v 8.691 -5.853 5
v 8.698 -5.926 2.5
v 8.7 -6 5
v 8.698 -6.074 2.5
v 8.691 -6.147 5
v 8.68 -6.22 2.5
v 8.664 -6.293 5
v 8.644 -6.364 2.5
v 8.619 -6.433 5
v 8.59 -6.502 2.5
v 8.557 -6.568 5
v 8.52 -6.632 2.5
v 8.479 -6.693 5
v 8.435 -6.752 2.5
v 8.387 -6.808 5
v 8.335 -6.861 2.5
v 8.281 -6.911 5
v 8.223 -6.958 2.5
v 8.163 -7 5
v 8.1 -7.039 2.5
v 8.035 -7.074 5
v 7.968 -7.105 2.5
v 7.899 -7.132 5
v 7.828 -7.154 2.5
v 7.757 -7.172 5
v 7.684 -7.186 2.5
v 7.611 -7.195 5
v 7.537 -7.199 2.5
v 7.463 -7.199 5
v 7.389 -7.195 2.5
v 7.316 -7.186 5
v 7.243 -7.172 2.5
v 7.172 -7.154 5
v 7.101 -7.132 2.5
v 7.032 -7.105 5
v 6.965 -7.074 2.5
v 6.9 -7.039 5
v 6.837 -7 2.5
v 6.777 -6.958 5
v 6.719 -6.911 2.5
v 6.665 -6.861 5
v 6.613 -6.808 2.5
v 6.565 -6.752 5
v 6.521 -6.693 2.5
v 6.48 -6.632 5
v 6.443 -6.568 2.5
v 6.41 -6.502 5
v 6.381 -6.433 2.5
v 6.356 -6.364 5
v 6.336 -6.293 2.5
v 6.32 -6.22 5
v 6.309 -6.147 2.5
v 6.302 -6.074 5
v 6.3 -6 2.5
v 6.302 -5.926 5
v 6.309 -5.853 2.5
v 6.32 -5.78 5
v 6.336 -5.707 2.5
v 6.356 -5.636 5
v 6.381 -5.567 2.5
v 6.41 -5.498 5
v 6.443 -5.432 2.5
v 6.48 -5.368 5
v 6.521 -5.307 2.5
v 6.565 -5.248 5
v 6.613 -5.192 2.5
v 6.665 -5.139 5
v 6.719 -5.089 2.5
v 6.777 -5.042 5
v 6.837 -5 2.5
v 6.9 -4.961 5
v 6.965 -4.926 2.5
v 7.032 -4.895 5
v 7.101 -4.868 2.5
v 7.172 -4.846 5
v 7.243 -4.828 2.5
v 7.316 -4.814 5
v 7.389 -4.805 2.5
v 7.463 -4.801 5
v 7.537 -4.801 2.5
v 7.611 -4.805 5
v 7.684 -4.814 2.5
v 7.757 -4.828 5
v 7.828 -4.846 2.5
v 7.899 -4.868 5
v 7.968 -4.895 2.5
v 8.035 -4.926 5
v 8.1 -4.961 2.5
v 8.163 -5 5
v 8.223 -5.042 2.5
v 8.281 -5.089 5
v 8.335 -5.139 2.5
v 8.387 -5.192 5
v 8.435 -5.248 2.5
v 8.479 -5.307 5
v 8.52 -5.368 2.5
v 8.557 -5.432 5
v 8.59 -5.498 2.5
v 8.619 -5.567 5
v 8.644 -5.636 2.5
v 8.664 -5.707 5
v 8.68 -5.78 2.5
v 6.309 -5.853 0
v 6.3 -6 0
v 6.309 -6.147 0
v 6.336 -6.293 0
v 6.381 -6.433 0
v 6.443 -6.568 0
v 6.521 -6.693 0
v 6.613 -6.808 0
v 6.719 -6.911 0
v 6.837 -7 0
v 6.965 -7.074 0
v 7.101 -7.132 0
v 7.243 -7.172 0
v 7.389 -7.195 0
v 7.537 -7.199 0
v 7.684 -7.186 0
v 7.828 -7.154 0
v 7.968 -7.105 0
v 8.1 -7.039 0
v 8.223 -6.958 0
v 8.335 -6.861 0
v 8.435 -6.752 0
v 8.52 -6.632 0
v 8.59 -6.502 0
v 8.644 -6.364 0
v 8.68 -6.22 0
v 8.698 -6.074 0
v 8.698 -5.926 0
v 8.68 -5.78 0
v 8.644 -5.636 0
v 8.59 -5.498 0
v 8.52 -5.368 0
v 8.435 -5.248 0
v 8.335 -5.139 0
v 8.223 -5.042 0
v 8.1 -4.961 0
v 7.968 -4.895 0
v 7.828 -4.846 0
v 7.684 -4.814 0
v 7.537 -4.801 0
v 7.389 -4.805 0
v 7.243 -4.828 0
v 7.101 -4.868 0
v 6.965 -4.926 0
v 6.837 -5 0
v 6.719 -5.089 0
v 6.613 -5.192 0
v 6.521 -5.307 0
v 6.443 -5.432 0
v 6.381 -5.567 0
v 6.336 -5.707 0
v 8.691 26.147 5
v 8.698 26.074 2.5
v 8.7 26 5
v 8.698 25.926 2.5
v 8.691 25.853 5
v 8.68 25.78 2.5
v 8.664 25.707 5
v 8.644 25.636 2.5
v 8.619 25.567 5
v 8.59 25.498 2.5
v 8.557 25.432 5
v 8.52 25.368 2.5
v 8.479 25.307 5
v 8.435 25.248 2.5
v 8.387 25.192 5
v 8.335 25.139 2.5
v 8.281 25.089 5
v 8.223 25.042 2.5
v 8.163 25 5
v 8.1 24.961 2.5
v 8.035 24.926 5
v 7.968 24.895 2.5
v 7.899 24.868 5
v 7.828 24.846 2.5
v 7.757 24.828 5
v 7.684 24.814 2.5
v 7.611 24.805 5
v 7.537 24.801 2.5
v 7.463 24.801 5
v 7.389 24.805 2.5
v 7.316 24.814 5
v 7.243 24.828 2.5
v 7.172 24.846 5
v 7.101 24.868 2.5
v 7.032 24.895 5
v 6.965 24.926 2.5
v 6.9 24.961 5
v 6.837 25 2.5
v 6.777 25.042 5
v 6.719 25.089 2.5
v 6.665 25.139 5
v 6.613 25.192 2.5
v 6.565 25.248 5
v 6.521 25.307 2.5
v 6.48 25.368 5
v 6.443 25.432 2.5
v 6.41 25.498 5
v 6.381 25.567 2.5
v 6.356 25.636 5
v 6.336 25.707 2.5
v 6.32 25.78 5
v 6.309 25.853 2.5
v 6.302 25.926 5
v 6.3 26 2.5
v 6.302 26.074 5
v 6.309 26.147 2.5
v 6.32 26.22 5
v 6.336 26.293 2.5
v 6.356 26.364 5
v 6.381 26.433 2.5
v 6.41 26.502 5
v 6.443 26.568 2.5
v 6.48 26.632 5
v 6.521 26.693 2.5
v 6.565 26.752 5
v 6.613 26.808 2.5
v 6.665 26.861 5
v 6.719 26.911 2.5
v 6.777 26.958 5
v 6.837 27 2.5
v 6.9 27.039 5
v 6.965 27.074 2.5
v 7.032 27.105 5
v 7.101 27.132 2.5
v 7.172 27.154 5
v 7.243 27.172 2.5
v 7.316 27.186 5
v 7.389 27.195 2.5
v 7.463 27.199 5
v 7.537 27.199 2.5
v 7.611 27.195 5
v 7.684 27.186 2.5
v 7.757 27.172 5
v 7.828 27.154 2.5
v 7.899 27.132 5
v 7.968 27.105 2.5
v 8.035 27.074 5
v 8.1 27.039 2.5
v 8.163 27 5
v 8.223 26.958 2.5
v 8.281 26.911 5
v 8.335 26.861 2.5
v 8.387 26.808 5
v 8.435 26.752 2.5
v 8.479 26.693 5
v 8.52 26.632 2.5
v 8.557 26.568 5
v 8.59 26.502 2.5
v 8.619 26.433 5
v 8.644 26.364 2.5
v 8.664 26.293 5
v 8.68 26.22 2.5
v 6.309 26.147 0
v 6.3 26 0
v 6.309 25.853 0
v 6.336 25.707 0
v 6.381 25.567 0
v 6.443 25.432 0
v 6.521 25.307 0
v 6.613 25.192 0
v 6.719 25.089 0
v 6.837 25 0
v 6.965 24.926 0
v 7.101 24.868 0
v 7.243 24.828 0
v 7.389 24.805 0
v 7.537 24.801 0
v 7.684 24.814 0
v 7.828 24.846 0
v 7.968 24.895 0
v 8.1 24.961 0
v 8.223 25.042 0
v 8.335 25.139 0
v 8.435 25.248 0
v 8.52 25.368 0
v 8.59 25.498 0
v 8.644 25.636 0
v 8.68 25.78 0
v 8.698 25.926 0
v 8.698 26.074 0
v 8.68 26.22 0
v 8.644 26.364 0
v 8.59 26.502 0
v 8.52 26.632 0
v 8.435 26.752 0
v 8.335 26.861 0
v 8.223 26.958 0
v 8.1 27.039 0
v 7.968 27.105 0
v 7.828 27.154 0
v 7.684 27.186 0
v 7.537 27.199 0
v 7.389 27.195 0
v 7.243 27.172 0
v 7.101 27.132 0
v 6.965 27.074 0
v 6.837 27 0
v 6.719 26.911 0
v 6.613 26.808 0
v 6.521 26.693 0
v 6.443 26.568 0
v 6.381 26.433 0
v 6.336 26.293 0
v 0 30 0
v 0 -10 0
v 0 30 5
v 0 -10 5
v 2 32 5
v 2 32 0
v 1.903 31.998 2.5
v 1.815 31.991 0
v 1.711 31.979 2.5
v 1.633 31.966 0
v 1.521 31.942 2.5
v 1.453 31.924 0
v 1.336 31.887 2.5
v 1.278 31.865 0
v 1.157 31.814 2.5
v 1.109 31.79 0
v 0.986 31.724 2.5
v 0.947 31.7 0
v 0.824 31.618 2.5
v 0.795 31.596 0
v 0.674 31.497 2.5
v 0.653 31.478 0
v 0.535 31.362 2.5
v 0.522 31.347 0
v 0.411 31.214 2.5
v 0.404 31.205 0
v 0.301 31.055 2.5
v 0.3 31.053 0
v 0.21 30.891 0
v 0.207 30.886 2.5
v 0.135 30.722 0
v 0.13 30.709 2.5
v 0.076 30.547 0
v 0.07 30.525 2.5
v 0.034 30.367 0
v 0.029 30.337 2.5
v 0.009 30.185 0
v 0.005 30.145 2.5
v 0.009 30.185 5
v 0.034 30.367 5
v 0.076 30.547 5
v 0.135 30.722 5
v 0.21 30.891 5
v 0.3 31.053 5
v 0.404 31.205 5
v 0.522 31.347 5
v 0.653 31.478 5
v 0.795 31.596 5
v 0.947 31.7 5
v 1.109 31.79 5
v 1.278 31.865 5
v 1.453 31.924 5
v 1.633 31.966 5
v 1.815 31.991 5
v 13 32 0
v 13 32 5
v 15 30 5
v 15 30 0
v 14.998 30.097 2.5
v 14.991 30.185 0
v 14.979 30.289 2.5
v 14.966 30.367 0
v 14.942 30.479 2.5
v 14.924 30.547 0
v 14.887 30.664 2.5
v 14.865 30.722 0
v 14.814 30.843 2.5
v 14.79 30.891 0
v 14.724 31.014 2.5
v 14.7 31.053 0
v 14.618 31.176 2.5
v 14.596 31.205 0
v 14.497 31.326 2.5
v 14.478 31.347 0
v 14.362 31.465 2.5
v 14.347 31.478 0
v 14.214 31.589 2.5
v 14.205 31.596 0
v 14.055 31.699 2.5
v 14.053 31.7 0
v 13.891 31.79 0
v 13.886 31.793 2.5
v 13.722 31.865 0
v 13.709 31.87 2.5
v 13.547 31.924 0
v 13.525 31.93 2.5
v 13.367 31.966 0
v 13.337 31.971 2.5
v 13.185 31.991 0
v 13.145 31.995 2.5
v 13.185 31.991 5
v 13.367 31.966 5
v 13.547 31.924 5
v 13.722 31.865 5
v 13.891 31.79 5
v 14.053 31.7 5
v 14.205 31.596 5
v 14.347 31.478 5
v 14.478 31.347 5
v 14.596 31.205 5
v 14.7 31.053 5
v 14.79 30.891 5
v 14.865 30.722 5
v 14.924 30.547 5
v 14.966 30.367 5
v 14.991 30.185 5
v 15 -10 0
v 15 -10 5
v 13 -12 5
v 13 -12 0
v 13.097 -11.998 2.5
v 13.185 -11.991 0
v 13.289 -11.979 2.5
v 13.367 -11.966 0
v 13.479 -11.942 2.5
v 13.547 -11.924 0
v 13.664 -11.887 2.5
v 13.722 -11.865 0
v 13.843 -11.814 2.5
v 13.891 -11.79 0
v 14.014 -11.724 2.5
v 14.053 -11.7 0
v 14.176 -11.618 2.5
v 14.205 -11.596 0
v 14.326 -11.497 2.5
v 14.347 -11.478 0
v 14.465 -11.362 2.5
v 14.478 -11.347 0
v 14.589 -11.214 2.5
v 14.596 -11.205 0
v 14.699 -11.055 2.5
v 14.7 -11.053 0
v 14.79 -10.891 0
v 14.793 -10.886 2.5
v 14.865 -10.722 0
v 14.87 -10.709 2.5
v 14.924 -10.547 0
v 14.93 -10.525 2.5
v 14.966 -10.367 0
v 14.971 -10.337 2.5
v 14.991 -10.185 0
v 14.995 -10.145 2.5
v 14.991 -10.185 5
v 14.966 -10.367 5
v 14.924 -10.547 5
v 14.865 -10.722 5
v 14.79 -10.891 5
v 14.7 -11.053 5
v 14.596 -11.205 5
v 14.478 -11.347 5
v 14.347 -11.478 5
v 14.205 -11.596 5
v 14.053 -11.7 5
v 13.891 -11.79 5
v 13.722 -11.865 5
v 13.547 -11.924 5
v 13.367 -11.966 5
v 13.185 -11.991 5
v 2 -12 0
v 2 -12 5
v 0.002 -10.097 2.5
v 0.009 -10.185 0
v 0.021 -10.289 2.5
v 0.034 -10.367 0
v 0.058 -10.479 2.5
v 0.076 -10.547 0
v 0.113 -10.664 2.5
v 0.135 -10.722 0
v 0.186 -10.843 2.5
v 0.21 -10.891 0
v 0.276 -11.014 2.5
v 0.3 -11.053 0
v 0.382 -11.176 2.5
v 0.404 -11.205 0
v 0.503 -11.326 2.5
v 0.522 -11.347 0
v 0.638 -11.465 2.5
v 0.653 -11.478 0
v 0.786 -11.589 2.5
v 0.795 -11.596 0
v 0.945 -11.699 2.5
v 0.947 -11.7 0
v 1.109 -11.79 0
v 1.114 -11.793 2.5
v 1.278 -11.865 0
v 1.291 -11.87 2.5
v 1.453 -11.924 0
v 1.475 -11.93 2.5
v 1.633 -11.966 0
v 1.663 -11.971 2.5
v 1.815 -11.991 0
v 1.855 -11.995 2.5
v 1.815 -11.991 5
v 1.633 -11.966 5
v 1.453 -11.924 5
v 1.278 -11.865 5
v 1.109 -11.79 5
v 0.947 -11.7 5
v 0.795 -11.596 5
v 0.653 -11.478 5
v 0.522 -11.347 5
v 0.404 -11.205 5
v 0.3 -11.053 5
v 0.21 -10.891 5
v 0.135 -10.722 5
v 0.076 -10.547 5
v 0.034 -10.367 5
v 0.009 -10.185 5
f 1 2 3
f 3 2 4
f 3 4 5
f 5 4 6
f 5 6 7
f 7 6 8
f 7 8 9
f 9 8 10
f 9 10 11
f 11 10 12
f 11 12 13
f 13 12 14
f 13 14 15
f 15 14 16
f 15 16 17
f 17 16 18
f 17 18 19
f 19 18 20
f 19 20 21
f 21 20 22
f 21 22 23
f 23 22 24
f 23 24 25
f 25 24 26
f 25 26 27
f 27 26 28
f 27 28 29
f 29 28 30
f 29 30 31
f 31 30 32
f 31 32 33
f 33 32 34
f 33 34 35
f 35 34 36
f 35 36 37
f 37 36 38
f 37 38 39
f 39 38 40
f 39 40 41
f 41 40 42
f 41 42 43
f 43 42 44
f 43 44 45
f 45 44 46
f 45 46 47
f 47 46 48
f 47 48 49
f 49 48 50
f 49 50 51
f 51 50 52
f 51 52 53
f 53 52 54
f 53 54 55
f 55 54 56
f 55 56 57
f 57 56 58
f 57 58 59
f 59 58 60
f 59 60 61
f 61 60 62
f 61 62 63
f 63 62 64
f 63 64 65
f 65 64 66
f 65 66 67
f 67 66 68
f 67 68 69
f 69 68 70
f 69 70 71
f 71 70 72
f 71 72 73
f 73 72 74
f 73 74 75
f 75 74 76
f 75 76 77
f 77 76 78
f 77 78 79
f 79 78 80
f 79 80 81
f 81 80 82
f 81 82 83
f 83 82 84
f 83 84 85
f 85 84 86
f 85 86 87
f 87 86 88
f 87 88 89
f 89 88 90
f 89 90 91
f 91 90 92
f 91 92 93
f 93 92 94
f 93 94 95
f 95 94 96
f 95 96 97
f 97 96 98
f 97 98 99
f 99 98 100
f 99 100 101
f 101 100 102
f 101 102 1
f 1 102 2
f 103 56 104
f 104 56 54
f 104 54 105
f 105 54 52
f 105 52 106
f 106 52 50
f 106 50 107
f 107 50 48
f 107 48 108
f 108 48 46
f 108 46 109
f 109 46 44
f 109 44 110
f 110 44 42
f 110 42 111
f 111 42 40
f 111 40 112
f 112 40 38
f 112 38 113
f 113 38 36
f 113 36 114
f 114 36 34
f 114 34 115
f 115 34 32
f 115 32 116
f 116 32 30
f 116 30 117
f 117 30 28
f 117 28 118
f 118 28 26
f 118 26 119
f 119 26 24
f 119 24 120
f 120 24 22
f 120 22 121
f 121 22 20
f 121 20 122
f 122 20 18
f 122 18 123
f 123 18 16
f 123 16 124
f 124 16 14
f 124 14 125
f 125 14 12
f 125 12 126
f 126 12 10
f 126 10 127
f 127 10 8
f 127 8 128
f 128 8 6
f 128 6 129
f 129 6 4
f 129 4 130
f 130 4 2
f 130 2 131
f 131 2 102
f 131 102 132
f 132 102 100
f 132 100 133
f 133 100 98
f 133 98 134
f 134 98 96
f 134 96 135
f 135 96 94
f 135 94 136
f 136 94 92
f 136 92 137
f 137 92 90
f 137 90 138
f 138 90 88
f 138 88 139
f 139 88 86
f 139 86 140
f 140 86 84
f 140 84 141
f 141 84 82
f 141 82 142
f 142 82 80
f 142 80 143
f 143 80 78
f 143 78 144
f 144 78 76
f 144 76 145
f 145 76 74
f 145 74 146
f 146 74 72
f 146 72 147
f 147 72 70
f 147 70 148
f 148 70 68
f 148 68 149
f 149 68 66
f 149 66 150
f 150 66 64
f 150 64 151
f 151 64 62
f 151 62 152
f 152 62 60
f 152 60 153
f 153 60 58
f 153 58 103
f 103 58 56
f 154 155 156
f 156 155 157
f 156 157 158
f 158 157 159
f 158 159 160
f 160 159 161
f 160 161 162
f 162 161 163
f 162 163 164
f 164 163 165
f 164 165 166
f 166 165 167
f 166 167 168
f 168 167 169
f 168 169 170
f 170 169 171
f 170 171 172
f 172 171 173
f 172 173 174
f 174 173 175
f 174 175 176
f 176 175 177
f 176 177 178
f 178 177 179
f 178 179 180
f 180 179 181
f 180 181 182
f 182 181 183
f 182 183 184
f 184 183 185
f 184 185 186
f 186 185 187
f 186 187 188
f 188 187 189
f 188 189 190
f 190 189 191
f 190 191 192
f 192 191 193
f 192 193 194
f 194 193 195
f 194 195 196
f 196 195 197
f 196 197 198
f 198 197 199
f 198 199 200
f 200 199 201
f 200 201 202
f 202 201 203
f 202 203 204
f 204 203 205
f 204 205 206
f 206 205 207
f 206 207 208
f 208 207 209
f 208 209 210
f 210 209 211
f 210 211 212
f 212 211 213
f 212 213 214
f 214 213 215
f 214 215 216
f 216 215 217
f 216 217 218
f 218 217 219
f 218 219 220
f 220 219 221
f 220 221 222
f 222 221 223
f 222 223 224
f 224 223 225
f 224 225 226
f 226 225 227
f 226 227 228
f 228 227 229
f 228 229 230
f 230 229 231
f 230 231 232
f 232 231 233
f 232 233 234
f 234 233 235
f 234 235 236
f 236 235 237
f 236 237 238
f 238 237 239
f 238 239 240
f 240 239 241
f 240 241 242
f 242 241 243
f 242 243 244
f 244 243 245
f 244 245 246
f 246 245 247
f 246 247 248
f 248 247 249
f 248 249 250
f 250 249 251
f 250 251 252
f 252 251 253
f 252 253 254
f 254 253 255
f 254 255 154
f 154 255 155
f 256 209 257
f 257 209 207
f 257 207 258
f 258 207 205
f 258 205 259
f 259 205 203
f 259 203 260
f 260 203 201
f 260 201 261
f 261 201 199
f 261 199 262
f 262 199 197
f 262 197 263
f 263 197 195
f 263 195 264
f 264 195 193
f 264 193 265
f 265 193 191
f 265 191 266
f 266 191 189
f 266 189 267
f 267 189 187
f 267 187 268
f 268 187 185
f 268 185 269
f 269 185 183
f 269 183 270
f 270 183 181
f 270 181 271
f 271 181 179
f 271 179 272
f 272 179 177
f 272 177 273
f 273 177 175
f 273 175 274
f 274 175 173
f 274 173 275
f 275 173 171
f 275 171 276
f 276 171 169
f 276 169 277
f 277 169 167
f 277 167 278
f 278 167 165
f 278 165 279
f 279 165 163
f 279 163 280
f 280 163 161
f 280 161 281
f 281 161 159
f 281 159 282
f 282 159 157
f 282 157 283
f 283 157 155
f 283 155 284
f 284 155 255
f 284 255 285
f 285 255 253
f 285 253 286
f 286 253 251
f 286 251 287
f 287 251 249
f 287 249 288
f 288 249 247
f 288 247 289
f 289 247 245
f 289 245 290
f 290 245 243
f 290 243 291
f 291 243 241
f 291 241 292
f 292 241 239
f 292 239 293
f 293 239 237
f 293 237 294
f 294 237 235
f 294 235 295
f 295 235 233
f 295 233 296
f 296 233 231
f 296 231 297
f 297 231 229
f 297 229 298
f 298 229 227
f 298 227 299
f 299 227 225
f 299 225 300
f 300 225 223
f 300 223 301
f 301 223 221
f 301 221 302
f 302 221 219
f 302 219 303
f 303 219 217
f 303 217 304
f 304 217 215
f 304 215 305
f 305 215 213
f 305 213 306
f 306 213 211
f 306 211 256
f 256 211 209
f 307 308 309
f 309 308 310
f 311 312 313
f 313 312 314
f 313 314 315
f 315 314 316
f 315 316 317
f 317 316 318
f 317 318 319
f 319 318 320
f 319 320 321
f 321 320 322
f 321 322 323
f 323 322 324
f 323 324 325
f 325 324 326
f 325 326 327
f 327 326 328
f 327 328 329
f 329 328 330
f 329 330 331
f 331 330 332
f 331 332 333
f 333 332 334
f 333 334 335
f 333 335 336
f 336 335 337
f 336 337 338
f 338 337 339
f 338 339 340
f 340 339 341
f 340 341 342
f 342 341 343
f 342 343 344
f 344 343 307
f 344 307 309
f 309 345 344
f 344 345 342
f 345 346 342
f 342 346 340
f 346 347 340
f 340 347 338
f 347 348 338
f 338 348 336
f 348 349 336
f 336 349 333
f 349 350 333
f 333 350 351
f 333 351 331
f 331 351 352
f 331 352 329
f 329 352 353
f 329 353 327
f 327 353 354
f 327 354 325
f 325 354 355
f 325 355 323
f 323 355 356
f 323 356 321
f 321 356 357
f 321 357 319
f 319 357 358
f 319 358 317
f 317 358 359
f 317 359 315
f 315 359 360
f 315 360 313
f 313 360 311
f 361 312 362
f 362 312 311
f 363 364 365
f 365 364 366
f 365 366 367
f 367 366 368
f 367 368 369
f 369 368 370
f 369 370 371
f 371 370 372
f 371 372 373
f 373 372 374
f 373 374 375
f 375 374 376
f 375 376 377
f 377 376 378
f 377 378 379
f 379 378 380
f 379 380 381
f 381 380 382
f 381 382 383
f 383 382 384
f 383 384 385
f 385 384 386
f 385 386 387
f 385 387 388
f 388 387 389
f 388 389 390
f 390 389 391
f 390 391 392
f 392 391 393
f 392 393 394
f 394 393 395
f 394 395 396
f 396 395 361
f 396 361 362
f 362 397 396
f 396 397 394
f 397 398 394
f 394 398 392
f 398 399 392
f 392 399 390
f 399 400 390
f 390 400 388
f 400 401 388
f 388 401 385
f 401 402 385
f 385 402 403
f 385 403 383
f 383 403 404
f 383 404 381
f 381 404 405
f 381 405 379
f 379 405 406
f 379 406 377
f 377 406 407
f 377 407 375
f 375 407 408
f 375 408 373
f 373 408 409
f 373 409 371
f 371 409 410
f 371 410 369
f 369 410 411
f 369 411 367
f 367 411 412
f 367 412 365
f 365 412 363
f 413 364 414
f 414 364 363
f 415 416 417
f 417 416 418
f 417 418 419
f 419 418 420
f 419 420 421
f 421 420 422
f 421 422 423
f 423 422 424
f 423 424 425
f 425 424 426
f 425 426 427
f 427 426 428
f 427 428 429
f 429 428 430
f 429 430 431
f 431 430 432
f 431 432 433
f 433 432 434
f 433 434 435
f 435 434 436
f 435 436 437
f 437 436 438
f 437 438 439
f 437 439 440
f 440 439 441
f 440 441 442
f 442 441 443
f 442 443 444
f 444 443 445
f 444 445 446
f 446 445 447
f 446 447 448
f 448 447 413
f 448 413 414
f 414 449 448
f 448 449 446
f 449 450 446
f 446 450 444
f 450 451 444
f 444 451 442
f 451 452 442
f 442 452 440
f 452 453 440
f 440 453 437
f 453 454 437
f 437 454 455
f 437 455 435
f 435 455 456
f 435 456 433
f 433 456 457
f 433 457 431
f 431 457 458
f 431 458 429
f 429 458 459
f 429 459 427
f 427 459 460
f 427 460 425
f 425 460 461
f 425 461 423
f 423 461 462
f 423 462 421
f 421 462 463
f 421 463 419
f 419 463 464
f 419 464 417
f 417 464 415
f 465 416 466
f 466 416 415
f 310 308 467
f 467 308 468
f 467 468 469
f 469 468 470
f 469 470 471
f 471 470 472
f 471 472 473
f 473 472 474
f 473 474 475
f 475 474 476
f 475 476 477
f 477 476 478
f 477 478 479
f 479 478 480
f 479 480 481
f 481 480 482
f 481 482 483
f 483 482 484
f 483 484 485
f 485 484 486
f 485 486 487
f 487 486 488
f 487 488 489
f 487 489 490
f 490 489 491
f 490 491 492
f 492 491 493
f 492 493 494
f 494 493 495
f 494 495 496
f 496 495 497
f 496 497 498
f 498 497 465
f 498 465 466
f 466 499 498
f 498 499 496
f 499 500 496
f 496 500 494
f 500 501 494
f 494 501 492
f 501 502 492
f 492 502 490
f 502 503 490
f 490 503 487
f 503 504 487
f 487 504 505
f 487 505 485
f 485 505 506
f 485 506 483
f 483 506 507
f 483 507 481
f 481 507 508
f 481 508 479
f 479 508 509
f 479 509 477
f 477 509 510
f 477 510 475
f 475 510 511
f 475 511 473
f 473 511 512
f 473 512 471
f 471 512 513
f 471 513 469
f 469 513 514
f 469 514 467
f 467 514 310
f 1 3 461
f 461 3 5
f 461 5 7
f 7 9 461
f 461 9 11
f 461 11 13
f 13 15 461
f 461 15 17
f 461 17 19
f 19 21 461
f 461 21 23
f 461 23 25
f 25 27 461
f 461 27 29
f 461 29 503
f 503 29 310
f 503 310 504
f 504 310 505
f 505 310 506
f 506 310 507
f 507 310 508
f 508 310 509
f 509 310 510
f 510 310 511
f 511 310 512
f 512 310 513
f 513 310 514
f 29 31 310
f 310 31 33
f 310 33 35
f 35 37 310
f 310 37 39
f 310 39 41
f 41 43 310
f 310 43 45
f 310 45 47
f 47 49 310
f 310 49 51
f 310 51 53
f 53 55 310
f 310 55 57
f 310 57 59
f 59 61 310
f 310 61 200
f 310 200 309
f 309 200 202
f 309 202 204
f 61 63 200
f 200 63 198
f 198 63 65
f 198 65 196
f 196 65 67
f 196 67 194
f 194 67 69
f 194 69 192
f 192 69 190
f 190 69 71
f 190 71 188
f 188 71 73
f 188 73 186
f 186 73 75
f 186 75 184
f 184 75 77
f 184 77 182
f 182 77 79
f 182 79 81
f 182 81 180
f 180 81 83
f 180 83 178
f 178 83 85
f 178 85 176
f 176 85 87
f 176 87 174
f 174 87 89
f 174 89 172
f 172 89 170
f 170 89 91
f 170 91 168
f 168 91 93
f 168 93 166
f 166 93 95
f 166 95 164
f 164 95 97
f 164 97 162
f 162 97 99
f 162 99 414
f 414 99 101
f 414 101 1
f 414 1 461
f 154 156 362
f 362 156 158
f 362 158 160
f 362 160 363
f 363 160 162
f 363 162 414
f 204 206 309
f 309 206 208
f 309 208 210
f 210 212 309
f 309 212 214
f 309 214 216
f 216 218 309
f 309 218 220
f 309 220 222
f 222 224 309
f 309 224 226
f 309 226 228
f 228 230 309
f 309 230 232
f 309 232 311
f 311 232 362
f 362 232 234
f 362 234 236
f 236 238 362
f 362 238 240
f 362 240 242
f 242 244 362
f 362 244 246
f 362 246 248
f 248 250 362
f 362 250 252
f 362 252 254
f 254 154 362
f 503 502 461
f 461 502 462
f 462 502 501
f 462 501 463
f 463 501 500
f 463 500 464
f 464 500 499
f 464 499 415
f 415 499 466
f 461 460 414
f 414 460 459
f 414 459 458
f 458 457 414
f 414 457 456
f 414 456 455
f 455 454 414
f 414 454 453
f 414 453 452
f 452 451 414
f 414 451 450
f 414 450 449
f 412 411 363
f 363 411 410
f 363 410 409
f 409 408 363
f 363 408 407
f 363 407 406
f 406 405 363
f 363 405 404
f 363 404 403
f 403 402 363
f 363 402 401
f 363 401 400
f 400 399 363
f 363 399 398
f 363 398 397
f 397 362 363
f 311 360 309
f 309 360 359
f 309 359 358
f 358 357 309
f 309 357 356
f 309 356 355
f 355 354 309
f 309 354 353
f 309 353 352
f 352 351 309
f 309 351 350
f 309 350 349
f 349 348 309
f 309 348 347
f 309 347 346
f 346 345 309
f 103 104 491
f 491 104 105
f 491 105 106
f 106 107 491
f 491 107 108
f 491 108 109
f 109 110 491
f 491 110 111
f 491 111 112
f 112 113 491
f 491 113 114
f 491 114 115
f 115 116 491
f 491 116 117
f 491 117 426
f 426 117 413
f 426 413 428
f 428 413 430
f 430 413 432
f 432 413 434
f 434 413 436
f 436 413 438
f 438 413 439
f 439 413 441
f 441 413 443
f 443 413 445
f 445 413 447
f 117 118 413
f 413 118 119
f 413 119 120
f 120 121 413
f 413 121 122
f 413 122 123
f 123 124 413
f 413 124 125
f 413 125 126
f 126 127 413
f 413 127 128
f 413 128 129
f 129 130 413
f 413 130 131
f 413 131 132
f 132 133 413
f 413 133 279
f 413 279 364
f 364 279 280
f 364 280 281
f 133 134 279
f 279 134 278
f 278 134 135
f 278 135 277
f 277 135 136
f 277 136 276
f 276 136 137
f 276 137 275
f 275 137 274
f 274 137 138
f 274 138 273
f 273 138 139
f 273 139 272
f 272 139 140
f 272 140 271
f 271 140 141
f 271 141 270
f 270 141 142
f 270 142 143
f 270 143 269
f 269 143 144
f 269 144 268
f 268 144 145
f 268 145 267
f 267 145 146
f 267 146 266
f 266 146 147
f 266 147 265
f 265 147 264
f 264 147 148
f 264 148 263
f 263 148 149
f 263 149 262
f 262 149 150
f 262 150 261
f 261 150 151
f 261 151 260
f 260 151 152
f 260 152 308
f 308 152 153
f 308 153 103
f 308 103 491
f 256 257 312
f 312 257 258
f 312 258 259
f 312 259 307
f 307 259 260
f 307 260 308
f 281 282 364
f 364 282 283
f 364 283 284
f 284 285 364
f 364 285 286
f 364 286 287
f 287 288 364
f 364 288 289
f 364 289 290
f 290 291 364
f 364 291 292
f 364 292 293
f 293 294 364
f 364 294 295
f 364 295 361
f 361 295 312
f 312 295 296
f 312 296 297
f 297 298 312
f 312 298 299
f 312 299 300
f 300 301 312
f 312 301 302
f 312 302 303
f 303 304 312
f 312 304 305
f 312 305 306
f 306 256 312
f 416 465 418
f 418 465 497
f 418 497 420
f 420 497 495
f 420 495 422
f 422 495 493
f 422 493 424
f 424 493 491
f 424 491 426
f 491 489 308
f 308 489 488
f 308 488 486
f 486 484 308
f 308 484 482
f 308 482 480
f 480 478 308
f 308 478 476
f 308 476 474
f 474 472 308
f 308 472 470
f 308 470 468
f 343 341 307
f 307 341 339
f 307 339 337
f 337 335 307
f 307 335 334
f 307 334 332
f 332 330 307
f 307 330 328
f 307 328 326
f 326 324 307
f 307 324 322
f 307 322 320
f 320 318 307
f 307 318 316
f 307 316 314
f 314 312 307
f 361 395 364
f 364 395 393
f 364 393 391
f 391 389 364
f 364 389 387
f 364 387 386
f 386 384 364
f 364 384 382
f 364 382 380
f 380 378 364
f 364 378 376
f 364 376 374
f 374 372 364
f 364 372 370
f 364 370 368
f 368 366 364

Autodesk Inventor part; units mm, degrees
ref_plane "YZ Plane" through (0, 0, 0) normal (1, 0, 0) x (0, 1, 0)
ref_plane "XZ Plane" through (0, 0, 0) normal (0, 1, 0) x (-1, 0, 0)
ref_plane "XY Plane" through (0, 0, 0) normal (0, 0, 1) x (1, 0, 0)
sketch "Sketch1" plane through (0, 0, 0) normal (0, 0, 1) x (1, 0, 0)
  arc A0 (2, 32) -> (0, 30) centre (2, 30) ccw
  line L0 (0, 30) -> (0, 20)
  line L1 (15, 20) -> (0, 20)
  line L2 (15, 30) -> (15, 20)
  arc A1 (15, 30) -> (13, 32) centre (13, 30) ccw
  line L3 (13, 32) -> (2, 32)
  arc A2 (0, -10) -> (2, -12) centre (2, -10) ccw
  line L4 (13, -12) -> (2, -12)
  arc A3 (13, -12) -> (15, -10) centre (13, -10) ccw
  line L5 (15, -10) -> (15, 0)
  line L6 (15, 0) -> (0, 0)
  line L7 (0, -10) -> (0, 0)
  line L8 (15, 20) -> (15, 0)
  line L9 (0, 20) -> (0, 0)
  point P0 (15, 24)
extrude "Extrusion1" add sketch "Sketch1" along normal blind 5
sketch "Sketch2" plane through (0, 0, 5) normal (0, 0, 1) x (1, 0, 0)
  circle A0 centre (7.5, -6) radius 1.2
  line L0 (15, -10) -> (15, 30) projected
  circle A1 centre (7.5, 26) radius 1.2
  point P0 (0, 0)
  dimension "d2" = 2.4
  dimension "d3" = 7.5
  dimension "d4" = 2.4
extrude "Extrusion2" cut sketch "Sketch2" against normal up to surface (5 mm away)
properties part number "ramie 03-3"
